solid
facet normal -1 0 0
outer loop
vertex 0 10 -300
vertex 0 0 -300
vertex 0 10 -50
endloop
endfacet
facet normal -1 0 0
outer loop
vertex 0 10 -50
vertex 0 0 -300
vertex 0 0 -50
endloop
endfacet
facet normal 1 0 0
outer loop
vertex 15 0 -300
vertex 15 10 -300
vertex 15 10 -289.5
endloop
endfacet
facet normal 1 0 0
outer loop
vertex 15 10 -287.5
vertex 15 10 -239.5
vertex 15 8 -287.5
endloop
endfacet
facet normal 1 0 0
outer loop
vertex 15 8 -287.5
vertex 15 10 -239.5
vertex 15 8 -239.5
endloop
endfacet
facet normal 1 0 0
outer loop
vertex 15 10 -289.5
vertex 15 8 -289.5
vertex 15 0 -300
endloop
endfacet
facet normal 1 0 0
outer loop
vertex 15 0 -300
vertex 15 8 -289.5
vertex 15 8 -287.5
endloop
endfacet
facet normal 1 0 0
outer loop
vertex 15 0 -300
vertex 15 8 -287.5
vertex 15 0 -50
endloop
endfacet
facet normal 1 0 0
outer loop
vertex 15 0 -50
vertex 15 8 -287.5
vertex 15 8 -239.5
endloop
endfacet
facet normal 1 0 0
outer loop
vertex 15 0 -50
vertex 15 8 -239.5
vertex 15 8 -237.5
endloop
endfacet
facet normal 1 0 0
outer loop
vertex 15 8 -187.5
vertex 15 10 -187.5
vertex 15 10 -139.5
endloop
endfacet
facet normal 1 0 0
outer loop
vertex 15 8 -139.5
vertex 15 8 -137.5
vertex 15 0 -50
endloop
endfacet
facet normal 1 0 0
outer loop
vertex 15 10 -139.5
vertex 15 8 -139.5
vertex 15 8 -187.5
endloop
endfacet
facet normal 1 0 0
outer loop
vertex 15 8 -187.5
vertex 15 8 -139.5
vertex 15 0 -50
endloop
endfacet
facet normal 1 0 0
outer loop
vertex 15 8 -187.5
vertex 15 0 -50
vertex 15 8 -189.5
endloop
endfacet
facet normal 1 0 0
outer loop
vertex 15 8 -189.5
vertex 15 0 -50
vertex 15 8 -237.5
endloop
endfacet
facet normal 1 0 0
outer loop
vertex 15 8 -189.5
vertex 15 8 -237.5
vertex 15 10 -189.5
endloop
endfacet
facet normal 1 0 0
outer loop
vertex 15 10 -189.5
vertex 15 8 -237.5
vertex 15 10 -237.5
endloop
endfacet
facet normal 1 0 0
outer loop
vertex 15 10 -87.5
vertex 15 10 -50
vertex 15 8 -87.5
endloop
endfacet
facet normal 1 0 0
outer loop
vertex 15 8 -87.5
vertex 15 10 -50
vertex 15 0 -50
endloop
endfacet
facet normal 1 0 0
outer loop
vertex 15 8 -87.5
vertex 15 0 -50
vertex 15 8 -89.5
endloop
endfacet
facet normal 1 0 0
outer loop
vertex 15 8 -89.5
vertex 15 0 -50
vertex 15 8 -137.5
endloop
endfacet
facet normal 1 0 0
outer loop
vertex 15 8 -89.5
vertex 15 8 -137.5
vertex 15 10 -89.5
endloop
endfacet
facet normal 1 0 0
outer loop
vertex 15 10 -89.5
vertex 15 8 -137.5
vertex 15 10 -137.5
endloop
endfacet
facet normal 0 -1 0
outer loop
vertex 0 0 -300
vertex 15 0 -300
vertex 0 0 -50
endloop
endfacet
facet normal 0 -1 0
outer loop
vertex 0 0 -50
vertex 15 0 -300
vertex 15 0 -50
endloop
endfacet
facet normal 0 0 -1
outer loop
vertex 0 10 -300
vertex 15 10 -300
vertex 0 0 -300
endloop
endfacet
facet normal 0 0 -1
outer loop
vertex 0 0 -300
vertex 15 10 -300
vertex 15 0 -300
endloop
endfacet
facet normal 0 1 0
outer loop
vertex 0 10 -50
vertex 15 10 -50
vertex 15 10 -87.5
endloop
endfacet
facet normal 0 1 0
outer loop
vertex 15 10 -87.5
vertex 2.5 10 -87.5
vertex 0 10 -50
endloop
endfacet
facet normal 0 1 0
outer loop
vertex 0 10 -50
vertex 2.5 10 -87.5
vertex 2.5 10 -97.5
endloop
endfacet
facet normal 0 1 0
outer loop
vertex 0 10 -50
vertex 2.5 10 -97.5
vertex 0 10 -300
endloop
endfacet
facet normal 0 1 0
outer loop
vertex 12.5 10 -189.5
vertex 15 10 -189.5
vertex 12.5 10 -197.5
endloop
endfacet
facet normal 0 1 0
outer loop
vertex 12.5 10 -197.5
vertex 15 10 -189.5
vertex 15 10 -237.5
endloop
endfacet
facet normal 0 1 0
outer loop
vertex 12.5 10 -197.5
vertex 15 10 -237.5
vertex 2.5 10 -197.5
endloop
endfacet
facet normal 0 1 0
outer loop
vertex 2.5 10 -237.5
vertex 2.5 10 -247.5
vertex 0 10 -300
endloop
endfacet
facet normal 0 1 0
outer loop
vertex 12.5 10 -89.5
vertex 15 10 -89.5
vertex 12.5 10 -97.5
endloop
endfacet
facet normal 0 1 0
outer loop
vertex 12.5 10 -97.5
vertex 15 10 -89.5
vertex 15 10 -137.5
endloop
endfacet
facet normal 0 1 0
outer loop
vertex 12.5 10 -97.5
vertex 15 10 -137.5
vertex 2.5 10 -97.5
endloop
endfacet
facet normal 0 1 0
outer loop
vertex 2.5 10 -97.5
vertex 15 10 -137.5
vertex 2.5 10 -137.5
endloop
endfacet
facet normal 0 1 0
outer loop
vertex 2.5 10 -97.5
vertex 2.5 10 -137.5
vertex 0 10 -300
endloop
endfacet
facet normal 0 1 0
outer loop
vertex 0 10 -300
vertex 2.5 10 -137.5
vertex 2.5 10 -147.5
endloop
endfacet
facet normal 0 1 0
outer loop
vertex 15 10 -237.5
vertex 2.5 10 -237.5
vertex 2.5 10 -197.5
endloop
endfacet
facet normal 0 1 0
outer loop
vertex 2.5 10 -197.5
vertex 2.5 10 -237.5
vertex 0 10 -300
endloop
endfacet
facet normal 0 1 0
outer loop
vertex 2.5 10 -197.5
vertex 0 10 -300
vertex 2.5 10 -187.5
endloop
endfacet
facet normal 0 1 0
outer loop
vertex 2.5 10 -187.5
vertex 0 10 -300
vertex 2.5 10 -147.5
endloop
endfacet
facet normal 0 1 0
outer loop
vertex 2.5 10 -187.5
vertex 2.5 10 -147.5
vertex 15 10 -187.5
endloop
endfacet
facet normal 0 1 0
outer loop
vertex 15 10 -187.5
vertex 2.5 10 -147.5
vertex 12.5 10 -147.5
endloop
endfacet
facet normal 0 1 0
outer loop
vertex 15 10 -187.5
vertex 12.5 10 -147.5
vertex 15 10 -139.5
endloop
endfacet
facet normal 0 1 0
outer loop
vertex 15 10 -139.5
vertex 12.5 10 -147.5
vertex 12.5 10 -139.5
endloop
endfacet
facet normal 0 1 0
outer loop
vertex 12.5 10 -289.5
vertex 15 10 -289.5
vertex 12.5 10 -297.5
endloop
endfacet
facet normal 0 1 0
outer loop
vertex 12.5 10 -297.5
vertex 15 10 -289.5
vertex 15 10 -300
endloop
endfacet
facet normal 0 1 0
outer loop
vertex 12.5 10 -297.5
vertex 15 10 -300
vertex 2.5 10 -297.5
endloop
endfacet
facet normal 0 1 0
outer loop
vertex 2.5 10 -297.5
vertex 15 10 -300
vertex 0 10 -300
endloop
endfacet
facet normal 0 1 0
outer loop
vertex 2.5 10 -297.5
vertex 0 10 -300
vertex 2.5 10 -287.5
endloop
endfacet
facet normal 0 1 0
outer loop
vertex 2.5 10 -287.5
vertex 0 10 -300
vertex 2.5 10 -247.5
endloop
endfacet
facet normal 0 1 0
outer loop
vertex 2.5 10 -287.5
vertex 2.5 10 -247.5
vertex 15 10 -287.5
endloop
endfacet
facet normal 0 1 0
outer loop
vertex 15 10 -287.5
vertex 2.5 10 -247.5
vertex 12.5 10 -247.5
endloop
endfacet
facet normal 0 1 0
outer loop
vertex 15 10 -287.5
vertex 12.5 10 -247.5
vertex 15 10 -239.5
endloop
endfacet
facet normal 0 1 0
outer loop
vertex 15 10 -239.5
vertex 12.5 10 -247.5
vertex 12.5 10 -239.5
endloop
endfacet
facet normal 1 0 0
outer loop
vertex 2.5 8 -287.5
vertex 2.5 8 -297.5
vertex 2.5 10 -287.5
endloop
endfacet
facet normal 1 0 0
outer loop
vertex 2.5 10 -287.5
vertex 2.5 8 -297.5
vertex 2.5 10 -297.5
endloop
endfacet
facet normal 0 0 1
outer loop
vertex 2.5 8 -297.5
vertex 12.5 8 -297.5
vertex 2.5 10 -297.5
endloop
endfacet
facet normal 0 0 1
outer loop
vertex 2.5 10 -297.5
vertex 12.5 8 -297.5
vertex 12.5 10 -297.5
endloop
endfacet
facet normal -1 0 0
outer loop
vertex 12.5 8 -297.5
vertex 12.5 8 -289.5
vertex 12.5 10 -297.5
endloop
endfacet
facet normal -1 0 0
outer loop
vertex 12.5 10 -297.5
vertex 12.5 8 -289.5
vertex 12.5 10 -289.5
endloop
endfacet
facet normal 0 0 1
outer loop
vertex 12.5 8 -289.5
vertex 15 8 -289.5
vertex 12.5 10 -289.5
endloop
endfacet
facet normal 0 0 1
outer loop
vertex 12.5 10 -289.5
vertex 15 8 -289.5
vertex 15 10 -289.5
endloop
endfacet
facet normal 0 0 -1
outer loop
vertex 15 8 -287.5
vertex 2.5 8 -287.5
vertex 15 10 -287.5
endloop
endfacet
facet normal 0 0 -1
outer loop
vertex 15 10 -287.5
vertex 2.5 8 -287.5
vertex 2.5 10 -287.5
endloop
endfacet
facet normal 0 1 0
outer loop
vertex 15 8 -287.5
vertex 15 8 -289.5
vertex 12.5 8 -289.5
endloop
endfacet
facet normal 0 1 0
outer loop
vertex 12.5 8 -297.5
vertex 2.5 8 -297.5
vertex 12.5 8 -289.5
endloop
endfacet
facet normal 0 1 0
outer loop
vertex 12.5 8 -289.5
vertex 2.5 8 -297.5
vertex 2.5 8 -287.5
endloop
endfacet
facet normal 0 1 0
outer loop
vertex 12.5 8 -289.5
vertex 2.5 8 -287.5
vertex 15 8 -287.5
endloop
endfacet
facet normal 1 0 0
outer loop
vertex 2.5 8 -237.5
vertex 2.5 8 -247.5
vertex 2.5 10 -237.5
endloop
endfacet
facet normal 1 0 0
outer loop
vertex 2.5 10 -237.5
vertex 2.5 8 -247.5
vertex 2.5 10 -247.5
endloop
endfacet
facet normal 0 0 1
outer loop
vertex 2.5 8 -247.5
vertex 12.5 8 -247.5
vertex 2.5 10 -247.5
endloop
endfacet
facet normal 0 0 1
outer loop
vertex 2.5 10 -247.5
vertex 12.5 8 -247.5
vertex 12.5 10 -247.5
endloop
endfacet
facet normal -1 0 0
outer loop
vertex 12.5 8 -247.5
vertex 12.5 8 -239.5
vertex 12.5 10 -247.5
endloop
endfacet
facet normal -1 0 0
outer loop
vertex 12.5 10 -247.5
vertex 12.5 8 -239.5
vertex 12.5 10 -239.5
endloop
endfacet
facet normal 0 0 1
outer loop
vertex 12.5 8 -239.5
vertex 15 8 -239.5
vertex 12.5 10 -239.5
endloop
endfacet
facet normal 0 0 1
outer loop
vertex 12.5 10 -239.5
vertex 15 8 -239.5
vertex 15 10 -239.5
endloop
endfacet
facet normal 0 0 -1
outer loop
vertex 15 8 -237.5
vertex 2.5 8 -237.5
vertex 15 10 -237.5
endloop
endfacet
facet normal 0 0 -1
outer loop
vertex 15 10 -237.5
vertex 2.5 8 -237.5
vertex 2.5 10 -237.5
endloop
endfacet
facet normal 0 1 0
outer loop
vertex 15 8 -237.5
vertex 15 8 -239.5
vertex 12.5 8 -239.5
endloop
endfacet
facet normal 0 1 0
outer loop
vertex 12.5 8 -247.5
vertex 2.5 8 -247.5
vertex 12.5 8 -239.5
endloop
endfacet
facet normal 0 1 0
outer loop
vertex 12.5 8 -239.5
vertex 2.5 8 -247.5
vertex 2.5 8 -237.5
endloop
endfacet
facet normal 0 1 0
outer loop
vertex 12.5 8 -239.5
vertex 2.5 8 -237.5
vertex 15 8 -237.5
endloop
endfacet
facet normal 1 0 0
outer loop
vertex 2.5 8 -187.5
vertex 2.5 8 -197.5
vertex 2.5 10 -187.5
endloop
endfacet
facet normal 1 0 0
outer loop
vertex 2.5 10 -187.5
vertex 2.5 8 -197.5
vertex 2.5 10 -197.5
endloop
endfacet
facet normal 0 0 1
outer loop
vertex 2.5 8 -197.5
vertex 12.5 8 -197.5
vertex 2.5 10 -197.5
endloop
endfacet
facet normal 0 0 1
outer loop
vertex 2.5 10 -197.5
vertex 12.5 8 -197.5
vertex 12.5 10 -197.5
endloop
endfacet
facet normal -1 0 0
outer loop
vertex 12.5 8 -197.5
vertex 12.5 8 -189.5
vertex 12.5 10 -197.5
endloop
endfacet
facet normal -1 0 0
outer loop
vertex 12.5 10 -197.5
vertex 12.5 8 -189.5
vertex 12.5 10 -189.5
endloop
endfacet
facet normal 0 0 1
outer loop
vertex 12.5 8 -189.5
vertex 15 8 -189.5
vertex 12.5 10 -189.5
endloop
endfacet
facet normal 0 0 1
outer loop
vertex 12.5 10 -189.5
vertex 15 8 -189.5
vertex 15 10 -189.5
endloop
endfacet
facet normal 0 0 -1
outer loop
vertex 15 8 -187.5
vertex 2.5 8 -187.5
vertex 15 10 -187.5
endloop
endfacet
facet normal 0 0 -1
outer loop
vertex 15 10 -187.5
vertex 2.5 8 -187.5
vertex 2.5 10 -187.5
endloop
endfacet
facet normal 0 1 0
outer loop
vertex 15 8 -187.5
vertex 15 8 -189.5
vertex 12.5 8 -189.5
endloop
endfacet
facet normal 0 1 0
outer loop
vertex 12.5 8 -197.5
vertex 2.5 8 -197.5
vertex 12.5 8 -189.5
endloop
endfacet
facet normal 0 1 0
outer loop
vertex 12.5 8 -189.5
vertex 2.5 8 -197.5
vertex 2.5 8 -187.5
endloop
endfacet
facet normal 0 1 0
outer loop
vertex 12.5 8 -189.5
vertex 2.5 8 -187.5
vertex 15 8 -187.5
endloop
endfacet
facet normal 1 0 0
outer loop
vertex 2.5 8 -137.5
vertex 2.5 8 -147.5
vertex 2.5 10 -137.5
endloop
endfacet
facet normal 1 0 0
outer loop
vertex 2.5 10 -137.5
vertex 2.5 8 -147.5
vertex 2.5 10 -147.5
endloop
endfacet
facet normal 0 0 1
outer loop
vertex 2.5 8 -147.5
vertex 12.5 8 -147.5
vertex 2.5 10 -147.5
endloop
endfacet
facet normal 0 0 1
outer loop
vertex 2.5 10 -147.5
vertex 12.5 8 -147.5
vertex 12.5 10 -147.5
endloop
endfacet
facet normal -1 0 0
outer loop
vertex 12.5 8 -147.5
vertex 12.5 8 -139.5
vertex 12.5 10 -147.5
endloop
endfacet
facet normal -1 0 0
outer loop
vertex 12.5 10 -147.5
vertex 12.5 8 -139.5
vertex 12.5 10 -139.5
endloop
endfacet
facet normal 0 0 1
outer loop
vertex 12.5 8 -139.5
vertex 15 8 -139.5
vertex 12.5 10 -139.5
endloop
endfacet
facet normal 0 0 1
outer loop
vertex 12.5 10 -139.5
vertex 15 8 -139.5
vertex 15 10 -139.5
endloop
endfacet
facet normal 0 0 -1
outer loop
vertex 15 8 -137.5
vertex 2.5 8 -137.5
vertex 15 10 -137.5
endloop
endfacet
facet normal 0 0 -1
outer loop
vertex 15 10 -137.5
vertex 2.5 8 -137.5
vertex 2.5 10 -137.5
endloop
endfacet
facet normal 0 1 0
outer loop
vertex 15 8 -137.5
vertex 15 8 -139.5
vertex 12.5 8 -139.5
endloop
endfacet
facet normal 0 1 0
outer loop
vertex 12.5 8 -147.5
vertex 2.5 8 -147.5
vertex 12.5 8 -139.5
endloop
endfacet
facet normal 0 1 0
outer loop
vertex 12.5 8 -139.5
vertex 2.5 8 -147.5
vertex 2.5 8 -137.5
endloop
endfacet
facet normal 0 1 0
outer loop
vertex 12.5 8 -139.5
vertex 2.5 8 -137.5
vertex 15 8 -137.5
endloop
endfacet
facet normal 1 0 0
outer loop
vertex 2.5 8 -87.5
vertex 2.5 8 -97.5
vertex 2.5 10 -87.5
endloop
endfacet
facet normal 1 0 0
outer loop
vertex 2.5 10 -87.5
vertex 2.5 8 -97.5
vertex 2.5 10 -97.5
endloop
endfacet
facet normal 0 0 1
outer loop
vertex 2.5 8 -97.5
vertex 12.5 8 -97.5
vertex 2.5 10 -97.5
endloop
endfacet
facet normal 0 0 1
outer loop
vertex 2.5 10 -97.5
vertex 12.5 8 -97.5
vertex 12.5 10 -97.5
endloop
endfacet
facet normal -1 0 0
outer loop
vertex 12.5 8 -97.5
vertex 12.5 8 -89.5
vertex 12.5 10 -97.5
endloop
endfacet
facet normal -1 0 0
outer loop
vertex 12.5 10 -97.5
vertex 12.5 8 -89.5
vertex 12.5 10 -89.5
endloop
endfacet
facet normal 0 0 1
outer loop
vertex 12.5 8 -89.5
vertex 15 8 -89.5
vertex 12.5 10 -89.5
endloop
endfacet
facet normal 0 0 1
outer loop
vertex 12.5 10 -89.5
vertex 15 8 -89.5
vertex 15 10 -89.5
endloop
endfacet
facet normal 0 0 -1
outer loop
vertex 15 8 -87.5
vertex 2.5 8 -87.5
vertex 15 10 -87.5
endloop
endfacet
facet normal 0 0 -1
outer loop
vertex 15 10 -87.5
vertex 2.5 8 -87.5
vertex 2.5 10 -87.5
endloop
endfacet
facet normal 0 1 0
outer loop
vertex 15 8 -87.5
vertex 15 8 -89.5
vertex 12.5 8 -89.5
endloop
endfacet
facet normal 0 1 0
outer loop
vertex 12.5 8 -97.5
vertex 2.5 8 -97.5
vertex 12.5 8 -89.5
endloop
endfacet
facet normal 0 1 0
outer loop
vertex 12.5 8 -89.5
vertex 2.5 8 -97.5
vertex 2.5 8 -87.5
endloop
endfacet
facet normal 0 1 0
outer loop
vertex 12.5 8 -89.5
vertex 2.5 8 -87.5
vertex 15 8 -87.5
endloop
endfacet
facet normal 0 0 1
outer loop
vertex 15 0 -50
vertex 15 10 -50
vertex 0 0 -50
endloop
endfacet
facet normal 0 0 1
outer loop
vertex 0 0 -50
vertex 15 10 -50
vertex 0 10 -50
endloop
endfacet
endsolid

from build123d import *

# Parameters (mm, degrees)
SKETCH1_W           = 15
SKETCH1_H           = 300
BOSS_EXTRUDE1_DEPTH = 10
CUT_EXTRUDE2_DEPTH  = 2
CUT_EXTRUDE3_DEPTH  = 2
CUT_EXTRUDE4_DEPTH  = 2
CUT_EXTRUDE5_DEPTH  = 2
CUT_EXTRUDE6_DEPTH  = 2
SKETCH8_W           = 15
SKETCH8_H           = 10
CUT_EXTRUDE7_DEPTH  = 50


with BuildPart() as part:
    # Sketch1 → Boss-Extrude1 (new body)
    with BuildSketch(Plane(origin=(0, 0, 0), x_dir=(1, 0, 0), z_dir=(0, 1, 0))):
        with Locations((7.5, 150)):
            Rectangle(SKETCH1_W, SKETCH1_H)
    extrude(amount=BOSS_EXTRUDE1_DEPTH)

    # Sketch2 → Cut-Extrude2 (cut)
    with BuildSketch(Plane(origin=(0, 10, 0), x_dir=(1, 0, 0), z_dir=(0, 1, 0))):
        Polygon((2.5, 297.5), (12.5, 297.5), (12.5, 289.5), (15, 289.5), (15, 287.5), (12.5, 287.5), (2.5, 287.5), align=None)
    extrude(amount=-CUT_EXTRUDE2_DEPTH, mode=Mode.SUBTRACT)

    # Sketch3 → Cut-Extrude3 (cut)
    with BuildSketch(Plane(origin=(0, 10, 0), x_dir=(1, 0, 0), z_dir=(0, 1, 0))):
        Polygon((2.5, 247.5), (12.5, 247.5), (12.5, 239.5), (15, 239.5), (15, 237.5), (12.5, 237.5), (2.5, 237.5), align=None)
    extrude(amount=-CUT_EXTRUDE3_DEPTH, mode=Mode.SUBTRACT)

    # Sketch4 → Cut-Extrude4 (cut)
    with BuildSketch(Plane(origin=(0, 10, 0), x_dir=(1, 0, 0), z_dir=(0, 1, 0))):
        Polygon((12.5, 187.5), (15, 187.5), (15, 189.5), (12.5, 189.5), (12.5, 197.5), (2.5, 197.5), (2.5, 187.5), align=None)
    extrude(amount=-CUT_EXTRUDE4_DEPTH, mode=Mode.SUBTRACT)

    # Sketch5 → Cut-Extrude5 (cut)
    with BuildSketch(Plane(origin=(0, 10, 0), x_dir=(1, 0, 0), z_dir=(0, 1, 0))):
        Polygon((12.5, 137.5), (15, 137.5), (15, 139.5), (12.5, 139.5), (12.5, 147.5), (2.5, 147.5), (2.5, 137.5), align=None)
    extrude(amount=-CUT_EXTRUDE5_DEPTH, mode=Mode.SUBTRACT)

    # Sketch6 → Cut-Extrude6 (cut)
    with BuildSketch(Plane(origin=(0, 10, 0), x_dir=(1, 0, 0), z_dir=(0, 1, 0))):
        Polygon((12.5, 87.5), (15, 87.5), (15, 89.5), (12.5, 89.5), (12.5, 97.5), (2.5, 97.5), (2.5, 87.5), align=None)
    extrude(amount=-CUT_EXTRUDE6_DEPTH, mode=Mode.SUBTRACT)

    # Sketch8 → Cut-Extrude7 (cut)
    with BuildSketch(Plane.XY):
        with Locations((7.5, 5)):
            Rectangle(SKETCH8_W, SKETCH8_H)
    extrude(amount=-CUT_EXTRUDE7_DEPTH, mode=Mode.SUBTRACT)


solid = part.part
